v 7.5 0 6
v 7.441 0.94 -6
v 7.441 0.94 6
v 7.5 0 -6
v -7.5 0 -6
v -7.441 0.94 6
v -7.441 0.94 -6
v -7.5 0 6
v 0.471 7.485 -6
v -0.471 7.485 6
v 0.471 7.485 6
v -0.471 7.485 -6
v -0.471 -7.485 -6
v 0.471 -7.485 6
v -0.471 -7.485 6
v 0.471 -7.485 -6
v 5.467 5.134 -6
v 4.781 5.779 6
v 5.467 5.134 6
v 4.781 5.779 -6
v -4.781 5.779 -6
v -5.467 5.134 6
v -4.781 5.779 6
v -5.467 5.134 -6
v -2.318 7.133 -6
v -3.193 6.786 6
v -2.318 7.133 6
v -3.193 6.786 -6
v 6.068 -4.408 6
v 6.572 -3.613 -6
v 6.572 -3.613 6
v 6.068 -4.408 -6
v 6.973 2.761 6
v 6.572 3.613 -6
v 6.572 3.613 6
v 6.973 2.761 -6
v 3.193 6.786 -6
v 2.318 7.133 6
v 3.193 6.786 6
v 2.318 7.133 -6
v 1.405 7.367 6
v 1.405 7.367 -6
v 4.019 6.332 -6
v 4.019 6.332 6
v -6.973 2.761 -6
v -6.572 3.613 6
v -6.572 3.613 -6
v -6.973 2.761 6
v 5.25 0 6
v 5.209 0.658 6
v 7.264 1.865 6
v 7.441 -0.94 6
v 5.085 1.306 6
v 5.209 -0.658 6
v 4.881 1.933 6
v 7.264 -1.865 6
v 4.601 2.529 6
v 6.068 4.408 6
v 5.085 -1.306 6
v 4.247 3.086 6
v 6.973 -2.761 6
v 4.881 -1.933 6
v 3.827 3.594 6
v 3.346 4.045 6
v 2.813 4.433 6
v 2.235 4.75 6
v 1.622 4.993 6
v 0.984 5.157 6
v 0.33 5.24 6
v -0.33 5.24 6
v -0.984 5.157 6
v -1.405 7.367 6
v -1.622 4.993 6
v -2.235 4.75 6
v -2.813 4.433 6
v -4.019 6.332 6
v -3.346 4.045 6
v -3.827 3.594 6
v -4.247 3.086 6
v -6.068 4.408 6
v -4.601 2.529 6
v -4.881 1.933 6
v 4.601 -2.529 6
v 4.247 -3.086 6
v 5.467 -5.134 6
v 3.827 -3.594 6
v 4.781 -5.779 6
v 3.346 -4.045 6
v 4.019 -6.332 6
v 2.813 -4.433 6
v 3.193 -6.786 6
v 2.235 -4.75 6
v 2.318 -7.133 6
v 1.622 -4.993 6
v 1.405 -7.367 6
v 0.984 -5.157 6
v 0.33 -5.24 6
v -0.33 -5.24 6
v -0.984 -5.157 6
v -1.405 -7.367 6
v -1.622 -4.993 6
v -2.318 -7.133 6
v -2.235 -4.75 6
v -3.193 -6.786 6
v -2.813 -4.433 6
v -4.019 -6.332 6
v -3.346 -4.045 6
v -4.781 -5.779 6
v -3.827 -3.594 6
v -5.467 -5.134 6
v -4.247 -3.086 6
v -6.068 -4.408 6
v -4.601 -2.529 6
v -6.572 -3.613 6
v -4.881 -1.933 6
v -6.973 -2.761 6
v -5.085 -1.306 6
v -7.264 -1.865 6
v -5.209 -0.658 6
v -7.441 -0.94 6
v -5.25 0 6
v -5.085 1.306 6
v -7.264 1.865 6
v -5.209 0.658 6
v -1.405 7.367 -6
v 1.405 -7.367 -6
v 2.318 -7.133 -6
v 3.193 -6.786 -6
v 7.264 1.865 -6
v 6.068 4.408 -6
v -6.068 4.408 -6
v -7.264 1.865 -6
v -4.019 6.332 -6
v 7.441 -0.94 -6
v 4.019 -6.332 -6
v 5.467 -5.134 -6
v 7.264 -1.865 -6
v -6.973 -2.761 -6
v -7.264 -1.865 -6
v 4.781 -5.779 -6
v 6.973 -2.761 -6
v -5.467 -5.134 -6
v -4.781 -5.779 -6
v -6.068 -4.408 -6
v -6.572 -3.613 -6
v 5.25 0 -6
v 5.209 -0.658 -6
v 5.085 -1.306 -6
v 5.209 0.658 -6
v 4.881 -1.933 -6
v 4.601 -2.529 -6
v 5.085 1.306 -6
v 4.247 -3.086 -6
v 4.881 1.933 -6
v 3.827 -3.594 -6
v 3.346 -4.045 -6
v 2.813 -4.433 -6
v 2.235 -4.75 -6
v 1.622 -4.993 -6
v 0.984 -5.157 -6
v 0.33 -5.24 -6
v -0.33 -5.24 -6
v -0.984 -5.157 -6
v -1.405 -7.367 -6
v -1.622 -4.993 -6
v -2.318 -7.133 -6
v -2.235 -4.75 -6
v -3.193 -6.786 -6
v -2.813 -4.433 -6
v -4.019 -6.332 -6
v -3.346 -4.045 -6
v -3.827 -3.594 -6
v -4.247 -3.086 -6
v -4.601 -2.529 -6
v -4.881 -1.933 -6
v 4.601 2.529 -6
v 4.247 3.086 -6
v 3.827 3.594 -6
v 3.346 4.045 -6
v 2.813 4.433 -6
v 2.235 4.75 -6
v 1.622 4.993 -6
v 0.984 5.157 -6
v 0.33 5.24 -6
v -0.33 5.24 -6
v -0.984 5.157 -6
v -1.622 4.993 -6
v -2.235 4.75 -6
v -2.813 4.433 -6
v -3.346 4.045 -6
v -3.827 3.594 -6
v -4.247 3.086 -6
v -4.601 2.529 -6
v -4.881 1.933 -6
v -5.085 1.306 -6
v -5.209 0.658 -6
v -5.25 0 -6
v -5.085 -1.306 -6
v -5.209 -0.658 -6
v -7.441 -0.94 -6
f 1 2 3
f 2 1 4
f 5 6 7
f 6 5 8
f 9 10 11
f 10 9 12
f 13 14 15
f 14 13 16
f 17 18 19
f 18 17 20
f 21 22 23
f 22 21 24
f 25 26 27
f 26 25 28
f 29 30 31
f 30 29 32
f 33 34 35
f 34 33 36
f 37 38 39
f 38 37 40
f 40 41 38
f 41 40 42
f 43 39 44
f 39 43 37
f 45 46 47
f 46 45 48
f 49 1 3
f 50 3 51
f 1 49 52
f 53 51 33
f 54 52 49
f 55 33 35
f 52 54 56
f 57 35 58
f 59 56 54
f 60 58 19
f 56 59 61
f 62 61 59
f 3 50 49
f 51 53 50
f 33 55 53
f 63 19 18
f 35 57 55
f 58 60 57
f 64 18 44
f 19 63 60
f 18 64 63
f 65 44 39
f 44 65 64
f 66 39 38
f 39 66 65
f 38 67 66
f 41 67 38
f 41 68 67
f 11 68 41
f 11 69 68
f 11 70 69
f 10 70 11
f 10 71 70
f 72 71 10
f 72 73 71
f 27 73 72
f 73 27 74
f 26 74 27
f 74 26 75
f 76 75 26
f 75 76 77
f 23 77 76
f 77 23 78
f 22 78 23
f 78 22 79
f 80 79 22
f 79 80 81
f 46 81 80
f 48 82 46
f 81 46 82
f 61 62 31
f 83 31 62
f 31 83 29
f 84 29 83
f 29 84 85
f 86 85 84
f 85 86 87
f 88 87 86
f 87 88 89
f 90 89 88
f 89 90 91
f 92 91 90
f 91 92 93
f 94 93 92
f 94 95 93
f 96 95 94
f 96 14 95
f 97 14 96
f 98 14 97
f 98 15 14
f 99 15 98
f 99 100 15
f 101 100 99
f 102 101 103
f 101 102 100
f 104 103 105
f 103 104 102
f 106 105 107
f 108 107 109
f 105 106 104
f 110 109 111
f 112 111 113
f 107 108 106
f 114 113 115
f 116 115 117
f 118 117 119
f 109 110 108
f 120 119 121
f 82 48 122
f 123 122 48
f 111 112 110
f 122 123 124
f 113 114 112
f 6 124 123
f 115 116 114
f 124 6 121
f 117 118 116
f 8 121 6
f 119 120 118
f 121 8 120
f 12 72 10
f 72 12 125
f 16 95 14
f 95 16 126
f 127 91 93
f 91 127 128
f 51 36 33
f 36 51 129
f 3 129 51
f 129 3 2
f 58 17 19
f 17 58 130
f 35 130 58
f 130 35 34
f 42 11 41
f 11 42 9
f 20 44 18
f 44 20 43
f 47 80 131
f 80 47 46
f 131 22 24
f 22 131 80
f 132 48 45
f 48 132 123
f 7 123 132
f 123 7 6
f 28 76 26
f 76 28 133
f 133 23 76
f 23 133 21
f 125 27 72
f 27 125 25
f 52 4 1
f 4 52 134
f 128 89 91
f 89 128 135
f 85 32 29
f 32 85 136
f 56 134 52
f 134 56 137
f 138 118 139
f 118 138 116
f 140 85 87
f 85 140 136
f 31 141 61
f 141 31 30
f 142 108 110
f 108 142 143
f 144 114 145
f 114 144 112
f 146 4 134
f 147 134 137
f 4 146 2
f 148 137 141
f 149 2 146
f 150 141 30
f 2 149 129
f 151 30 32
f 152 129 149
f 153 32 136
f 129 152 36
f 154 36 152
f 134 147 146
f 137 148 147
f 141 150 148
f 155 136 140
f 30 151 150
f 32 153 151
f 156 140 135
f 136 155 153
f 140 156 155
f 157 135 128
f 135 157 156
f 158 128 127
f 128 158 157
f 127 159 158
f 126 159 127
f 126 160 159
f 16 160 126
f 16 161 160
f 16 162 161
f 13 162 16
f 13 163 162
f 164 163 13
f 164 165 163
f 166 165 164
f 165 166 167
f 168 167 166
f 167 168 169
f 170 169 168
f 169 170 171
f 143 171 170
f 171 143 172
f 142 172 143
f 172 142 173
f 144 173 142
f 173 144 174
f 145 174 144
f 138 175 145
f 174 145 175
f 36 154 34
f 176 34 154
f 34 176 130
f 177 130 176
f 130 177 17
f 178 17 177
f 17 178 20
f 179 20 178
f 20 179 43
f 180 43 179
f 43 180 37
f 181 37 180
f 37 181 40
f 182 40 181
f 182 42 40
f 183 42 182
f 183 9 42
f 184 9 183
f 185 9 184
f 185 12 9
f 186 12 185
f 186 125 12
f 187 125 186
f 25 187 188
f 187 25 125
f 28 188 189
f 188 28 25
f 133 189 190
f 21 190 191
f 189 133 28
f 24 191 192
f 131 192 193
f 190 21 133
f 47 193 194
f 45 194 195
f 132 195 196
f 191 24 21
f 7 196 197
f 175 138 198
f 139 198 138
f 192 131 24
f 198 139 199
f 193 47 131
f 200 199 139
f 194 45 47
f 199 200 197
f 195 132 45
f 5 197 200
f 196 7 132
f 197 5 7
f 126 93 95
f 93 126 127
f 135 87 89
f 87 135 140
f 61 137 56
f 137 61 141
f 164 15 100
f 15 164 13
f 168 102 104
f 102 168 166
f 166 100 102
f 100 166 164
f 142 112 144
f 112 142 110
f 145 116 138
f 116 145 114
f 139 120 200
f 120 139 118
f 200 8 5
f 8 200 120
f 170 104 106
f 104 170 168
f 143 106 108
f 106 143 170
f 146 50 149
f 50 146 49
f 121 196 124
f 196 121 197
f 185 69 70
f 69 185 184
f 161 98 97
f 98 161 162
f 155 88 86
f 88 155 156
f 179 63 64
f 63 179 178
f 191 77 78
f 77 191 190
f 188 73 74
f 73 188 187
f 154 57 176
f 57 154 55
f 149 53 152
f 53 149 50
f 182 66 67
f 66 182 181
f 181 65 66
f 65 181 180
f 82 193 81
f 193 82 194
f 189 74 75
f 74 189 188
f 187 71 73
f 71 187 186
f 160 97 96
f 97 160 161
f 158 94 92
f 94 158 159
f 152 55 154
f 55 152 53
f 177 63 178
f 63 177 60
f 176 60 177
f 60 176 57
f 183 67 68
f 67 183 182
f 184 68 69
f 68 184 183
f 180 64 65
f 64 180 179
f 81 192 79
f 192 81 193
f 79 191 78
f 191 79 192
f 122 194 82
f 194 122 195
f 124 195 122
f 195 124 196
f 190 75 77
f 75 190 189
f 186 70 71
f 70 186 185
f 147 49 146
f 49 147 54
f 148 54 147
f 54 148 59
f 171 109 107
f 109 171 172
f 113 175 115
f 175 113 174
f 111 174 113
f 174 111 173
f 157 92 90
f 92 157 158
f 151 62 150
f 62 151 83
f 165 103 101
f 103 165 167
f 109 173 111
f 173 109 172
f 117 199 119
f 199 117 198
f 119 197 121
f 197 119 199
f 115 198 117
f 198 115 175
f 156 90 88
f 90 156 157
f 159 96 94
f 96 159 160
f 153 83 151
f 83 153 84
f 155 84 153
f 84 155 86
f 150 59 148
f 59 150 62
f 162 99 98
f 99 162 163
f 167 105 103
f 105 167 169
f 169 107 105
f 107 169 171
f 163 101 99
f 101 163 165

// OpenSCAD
$fn = 50;


difference() {
	union() {
		translate(v = [0, 0, -6.0000000000]) {
			cylinder(h = 12, r = 7.5000000000);
		}
	}
	union() {
		translate(v = [0, 0, -100.0000000000]) {
			cylinder(h = 200, r = 5.2500000000);
		}
	}
}
